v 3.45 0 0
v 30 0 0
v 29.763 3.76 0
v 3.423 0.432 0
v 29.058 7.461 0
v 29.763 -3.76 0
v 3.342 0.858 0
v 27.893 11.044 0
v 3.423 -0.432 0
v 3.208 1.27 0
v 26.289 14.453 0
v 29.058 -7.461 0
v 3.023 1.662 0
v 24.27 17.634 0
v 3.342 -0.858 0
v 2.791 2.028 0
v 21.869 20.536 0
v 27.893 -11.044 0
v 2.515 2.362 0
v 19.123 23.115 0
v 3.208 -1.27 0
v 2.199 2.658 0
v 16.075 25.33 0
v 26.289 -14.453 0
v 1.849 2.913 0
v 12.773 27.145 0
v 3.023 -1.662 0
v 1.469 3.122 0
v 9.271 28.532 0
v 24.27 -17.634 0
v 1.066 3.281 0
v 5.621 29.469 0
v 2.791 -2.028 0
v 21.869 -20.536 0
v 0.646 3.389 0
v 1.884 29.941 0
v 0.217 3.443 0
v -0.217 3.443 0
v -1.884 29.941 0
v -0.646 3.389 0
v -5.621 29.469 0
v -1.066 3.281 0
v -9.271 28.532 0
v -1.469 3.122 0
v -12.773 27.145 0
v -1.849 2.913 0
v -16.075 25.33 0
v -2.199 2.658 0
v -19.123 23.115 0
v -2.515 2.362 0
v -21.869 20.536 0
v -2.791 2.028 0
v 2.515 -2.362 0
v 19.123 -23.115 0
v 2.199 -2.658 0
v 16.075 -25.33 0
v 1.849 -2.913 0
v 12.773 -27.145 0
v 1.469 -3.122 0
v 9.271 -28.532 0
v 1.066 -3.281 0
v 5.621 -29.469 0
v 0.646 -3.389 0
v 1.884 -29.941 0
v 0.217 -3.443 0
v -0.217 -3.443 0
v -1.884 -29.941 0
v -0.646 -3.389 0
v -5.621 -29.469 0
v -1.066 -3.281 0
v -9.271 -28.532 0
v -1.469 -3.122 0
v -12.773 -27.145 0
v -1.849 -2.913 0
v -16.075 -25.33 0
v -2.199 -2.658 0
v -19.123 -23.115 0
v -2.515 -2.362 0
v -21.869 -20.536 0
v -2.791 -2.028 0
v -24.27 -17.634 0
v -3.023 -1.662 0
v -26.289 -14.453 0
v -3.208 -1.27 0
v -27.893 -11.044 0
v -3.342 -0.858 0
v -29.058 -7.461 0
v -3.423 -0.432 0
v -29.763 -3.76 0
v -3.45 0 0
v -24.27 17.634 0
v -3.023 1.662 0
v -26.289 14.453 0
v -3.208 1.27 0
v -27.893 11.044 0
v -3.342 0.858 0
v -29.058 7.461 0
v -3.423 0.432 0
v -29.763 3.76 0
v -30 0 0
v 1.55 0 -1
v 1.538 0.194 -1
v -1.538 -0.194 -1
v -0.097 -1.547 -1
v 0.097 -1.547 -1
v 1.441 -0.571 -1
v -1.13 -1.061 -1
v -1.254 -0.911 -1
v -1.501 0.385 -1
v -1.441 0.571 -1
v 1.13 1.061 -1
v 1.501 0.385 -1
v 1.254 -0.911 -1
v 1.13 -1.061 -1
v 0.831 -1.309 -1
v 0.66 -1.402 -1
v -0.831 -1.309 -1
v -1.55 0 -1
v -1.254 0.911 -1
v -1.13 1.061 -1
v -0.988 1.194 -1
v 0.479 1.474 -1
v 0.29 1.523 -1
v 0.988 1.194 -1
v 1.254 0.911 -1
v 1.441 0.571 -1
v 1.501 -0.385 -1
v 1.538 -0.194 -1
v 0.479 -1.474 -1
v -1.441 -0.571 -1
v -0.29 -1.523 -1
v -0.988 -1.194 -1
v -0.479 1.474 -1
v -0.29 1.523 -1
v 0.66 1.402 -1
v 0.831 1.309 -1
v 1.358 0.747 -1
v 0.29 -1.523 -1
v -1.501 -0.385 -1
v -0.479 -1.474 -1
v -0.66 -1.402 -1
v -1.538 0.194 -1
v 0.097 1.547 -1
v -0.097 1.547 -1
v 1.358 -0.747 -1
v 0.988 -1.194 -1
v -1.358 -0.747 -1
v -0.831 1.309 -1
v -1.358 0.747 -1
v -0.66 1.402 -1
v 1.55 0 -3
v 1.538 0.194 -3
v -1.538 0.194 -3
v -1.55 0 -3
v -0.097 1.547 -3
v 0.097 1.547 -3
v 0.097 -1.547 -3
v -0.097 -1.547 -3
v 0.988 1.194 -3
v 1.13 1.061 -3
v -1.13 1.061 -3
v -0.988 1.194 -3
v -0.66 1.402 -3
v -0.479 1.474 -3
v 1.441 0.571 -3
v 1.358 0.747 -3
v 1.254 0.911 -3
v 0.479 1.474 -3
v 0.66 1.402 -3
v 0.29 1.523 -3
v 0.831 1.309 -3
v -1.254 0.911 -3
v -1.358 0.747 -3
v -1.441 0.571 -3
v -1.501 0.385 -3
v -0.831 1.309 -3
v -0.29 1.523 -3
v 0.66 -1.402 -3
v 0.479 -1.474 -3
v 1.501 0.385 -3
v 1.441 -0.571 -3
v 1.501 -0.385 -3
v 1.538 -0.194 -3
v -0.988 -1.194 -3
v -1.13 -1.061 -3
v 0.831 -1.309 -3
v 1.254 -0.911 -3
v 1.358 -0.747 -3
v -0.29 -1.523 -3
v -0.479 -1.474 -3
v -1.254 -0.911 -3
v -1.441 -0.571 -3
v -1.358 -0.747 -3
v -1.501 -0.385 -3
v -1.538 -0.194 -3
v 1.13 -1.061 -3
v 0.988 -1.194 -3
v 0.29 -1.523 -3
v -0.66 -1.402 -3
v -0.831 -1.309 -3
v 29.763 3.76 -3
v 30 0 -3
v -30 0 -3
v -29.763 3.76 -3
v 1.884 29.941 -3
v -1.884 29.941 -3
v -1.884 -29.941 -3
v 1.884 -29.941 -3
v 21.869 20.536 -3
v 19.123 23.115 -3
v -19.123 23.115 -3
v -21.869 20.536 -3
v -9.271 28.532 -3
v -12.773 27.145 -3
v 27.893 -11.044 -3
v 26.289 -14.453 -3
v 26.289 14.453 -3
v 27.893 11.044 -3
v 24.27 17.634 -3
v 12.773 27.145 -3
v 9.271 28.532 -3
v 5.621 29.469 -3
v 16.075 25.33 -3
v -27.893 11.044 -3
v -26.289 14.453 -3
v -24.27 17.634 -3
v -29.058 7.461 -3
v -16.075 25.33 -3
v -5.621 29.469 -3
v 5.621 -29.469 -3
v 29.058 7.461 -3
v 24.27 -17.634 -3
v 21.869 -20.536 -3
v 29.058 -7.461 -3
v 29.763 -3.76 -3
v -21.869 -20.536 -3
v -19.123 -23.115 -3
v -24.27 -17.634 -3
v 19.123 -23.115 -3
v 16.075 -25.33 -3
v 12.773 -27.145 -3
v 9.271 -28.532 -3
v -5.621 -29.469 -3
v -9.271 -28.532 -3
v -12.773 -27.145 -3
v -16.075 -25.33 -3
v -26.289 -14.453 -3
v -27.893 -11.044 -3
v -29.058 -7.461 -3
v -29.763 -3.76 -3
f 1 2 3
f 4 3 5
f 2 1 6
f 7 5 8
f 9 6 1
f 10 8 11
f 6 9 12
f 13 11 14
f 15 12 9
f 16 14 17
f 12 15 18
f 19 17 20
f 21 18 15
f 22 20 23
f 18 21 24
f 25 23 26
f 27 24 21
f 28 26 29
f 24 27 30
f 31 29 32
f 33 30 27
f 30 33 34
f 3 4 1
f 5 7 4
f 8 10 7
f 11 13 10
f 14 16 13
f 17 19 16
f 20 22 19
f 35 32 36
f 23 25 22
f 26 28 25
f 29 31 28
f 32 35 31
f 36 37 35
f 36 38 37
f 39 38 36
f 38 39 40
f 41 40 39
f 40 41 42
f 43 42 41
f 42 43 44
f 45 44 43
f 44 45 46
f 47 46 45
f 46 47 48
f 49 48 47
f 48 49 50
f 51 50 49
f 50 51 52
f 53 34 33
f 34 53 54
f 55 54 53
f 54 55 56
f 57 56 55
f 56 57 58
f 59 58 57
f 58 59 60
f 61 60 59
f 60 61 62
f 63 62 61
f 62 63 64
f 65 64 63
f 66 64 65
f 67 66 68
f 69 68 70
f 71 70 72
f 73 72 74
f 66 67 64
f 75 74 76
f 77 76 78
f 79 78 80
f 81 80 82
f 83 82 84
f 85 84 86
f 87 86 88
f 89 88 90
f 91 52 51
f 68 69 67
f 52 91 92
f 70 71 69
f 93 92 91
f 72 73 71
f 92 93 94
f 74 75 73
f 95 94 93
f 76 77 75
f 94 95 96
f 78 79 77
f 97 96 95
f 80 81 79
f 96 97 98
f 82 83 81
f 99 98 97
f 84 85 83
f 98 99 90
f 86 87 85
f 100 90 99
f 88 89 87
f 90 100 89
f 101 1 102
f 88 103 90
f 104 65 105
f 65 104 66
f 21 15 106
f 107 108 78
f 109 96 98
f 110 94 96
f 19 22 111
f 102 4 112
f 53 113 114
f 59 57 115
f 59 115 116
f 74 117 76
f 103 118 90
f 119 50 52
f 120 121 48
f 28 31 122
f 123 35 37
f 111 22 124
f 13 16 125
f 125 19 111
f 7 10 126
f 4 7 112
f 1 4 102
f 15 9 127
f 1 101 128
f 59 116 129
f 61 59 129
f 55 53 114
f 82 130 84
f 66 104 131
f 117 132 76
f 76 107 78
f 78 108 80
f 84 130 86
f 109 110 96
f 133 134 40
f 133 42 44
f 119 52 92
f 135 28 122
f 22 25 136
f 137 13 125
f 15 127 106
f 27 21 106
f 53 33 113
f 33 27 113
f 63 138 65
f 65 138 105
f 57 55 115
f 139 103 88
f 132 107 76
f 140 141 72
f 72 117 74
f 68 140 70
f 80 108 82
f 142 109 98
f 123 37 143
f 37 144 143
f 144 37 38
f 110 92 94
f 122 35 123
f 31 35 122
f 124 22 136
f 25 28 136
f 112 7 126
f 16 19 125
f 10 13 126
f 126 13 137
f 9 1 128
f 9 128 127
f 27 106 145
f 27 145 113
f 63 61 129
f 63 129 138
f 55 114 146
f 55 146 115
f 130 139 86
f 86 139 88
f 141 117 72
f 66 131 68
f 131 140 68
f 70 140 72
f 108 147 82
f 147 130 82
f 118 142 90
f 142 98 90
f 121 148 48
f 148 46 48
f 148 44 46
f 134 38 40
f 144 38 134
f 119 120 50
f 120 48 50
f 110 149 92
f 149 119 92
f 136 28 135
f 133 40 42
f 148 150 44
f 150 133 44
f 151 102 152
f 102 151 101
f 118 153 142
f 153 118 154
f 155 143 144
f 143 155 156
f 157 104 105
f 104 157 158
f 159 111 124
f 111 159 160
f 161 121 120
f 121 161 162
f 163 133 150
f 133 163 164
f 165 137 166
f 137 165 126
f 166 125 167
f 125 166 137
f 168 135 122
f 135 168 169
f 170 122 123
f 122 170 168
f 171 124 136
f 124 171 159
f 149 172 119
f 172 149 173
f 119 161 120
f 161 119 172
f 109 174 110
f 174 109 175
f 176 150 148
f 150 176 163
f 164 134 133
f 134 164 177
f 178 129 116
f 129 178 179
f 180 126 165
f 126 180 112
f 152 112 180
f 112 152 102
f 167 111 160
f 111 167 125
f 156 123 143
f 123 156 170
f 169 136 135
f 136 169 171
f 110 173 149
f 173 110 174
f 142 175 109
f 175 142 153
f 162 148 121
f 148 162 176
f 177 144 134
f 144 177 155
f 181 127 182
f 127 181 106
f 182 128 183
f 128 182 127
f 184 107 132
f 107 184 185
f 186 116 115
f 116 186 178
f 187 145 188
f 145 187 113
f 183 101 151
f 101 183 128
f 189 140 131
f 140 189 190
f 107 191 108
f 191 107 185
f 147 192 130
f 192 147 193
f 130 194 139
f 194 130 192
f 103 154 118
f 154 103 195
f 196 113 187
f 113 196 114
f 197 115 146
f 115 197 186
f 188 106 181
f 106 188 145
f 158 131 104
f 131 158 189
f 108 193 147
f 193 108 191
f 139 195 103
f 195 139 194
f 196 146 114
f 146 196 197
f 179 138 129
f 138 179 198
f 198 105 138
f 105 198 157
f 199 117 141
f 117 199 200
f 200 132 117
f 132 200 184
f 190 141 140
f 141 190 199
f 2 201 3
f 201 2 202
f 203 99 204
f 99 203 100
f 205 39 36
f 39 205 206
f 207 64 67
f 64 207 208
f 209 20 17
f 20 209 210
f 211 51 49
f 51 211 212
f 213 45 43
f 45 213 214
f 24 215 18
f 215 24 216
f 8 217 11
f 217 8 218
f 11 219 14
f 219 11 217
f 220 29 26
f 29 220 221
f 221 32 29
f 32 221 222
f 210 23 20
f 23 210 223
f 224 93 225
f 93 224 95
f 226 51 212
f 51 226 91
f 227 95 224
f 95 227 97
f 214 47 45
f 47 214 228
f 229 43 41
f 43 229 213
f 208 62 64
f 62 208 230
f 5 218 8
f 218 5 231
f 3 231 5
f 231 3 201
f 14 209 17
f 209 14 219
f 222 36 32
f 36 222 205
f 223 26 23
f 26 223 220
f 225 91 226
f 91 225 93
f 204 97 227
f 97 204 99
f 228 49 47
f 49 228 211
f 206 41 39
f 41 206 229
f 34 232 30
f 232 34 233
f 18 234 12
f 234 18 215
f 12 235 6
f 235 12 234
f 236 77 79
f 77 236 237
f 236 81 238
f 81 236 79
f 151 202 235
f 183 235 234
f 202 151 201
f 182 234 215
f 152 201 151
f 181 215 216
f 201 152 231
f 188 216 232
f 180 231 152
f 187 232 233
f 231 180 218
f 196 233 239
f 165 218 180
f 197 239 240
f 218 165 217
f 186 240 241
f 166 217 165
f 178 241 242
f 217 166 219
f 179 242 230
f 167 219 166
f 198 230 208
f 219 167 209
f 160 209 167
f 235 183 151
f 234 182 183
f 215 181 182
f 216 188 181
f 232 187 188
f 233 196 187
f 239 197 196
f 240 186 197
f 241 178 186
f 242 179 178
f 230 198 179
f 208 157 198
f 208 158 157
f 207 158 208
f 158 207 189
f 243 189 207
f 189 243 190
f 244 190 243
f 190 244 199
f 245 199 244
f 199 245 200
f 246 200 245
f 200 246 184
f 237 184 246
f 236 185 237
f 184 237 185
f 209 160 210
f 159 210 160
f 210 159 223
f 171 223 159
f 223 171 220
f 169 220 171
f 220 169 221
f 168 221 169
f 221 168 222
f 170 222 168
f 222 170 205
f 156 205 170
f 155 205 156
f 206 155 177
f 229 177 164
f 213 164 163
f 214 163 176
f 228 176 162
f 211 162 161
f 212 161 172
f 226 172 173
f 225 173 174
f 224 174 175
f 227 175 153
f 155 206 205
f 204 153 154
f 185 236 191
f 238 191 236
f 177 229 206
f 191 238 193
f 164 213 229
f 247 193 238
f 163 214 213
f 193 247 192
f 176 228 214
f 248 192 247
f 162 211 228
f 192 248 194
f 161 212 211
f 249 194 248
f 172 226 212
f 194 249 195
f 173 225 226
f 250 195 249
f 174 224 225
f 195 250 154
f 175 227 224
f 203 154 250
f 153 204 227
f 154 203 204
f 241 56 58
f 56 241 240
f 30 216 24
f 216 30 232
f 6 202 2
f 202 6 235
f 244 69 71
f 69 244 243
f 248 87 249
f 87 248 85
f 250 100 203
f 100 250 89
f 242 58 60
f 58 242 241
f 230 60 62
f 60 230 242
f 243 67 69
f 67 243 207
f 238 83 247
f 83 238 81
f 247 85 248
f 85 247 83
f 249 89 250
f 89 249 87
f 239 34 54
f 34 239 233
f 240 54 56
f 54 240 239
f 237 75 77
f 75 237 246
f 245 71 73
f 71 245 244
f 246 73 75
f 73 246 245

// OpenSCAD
$fn = 50;


difference() {
	union() {
		translate(v = [0, 0, -3.0000000000]) {
			cylinder(h = 3, r = 30.0000000000);
		}
	}
	union() {
		translate(v = [0, 0, 0]) {
			rotate(a = [0, 0, 0]) {
				difference() {
					union() {
						translate(v = [0, 0, -6.0000000000]) {
							cylinder(h = 6, r = 1.2500000000);
						}
						translate(v = [0, 0, -1.0000000000]) {
							cylinder(h = 1.0000000000, r1 = 1.5500000000, r2 = 3.4500000000);
						}
						translate(v = [0, 0, -6.0000000000]) {
							cylinder(h = 6, r = 1.5500000000);
						}
						translate(v = [0, 0, -6.0000000000]) {
							cylinder(h = 6, r = 1.2500000000);
						}
					}
					union();
				}
			}
		}
	}
}
